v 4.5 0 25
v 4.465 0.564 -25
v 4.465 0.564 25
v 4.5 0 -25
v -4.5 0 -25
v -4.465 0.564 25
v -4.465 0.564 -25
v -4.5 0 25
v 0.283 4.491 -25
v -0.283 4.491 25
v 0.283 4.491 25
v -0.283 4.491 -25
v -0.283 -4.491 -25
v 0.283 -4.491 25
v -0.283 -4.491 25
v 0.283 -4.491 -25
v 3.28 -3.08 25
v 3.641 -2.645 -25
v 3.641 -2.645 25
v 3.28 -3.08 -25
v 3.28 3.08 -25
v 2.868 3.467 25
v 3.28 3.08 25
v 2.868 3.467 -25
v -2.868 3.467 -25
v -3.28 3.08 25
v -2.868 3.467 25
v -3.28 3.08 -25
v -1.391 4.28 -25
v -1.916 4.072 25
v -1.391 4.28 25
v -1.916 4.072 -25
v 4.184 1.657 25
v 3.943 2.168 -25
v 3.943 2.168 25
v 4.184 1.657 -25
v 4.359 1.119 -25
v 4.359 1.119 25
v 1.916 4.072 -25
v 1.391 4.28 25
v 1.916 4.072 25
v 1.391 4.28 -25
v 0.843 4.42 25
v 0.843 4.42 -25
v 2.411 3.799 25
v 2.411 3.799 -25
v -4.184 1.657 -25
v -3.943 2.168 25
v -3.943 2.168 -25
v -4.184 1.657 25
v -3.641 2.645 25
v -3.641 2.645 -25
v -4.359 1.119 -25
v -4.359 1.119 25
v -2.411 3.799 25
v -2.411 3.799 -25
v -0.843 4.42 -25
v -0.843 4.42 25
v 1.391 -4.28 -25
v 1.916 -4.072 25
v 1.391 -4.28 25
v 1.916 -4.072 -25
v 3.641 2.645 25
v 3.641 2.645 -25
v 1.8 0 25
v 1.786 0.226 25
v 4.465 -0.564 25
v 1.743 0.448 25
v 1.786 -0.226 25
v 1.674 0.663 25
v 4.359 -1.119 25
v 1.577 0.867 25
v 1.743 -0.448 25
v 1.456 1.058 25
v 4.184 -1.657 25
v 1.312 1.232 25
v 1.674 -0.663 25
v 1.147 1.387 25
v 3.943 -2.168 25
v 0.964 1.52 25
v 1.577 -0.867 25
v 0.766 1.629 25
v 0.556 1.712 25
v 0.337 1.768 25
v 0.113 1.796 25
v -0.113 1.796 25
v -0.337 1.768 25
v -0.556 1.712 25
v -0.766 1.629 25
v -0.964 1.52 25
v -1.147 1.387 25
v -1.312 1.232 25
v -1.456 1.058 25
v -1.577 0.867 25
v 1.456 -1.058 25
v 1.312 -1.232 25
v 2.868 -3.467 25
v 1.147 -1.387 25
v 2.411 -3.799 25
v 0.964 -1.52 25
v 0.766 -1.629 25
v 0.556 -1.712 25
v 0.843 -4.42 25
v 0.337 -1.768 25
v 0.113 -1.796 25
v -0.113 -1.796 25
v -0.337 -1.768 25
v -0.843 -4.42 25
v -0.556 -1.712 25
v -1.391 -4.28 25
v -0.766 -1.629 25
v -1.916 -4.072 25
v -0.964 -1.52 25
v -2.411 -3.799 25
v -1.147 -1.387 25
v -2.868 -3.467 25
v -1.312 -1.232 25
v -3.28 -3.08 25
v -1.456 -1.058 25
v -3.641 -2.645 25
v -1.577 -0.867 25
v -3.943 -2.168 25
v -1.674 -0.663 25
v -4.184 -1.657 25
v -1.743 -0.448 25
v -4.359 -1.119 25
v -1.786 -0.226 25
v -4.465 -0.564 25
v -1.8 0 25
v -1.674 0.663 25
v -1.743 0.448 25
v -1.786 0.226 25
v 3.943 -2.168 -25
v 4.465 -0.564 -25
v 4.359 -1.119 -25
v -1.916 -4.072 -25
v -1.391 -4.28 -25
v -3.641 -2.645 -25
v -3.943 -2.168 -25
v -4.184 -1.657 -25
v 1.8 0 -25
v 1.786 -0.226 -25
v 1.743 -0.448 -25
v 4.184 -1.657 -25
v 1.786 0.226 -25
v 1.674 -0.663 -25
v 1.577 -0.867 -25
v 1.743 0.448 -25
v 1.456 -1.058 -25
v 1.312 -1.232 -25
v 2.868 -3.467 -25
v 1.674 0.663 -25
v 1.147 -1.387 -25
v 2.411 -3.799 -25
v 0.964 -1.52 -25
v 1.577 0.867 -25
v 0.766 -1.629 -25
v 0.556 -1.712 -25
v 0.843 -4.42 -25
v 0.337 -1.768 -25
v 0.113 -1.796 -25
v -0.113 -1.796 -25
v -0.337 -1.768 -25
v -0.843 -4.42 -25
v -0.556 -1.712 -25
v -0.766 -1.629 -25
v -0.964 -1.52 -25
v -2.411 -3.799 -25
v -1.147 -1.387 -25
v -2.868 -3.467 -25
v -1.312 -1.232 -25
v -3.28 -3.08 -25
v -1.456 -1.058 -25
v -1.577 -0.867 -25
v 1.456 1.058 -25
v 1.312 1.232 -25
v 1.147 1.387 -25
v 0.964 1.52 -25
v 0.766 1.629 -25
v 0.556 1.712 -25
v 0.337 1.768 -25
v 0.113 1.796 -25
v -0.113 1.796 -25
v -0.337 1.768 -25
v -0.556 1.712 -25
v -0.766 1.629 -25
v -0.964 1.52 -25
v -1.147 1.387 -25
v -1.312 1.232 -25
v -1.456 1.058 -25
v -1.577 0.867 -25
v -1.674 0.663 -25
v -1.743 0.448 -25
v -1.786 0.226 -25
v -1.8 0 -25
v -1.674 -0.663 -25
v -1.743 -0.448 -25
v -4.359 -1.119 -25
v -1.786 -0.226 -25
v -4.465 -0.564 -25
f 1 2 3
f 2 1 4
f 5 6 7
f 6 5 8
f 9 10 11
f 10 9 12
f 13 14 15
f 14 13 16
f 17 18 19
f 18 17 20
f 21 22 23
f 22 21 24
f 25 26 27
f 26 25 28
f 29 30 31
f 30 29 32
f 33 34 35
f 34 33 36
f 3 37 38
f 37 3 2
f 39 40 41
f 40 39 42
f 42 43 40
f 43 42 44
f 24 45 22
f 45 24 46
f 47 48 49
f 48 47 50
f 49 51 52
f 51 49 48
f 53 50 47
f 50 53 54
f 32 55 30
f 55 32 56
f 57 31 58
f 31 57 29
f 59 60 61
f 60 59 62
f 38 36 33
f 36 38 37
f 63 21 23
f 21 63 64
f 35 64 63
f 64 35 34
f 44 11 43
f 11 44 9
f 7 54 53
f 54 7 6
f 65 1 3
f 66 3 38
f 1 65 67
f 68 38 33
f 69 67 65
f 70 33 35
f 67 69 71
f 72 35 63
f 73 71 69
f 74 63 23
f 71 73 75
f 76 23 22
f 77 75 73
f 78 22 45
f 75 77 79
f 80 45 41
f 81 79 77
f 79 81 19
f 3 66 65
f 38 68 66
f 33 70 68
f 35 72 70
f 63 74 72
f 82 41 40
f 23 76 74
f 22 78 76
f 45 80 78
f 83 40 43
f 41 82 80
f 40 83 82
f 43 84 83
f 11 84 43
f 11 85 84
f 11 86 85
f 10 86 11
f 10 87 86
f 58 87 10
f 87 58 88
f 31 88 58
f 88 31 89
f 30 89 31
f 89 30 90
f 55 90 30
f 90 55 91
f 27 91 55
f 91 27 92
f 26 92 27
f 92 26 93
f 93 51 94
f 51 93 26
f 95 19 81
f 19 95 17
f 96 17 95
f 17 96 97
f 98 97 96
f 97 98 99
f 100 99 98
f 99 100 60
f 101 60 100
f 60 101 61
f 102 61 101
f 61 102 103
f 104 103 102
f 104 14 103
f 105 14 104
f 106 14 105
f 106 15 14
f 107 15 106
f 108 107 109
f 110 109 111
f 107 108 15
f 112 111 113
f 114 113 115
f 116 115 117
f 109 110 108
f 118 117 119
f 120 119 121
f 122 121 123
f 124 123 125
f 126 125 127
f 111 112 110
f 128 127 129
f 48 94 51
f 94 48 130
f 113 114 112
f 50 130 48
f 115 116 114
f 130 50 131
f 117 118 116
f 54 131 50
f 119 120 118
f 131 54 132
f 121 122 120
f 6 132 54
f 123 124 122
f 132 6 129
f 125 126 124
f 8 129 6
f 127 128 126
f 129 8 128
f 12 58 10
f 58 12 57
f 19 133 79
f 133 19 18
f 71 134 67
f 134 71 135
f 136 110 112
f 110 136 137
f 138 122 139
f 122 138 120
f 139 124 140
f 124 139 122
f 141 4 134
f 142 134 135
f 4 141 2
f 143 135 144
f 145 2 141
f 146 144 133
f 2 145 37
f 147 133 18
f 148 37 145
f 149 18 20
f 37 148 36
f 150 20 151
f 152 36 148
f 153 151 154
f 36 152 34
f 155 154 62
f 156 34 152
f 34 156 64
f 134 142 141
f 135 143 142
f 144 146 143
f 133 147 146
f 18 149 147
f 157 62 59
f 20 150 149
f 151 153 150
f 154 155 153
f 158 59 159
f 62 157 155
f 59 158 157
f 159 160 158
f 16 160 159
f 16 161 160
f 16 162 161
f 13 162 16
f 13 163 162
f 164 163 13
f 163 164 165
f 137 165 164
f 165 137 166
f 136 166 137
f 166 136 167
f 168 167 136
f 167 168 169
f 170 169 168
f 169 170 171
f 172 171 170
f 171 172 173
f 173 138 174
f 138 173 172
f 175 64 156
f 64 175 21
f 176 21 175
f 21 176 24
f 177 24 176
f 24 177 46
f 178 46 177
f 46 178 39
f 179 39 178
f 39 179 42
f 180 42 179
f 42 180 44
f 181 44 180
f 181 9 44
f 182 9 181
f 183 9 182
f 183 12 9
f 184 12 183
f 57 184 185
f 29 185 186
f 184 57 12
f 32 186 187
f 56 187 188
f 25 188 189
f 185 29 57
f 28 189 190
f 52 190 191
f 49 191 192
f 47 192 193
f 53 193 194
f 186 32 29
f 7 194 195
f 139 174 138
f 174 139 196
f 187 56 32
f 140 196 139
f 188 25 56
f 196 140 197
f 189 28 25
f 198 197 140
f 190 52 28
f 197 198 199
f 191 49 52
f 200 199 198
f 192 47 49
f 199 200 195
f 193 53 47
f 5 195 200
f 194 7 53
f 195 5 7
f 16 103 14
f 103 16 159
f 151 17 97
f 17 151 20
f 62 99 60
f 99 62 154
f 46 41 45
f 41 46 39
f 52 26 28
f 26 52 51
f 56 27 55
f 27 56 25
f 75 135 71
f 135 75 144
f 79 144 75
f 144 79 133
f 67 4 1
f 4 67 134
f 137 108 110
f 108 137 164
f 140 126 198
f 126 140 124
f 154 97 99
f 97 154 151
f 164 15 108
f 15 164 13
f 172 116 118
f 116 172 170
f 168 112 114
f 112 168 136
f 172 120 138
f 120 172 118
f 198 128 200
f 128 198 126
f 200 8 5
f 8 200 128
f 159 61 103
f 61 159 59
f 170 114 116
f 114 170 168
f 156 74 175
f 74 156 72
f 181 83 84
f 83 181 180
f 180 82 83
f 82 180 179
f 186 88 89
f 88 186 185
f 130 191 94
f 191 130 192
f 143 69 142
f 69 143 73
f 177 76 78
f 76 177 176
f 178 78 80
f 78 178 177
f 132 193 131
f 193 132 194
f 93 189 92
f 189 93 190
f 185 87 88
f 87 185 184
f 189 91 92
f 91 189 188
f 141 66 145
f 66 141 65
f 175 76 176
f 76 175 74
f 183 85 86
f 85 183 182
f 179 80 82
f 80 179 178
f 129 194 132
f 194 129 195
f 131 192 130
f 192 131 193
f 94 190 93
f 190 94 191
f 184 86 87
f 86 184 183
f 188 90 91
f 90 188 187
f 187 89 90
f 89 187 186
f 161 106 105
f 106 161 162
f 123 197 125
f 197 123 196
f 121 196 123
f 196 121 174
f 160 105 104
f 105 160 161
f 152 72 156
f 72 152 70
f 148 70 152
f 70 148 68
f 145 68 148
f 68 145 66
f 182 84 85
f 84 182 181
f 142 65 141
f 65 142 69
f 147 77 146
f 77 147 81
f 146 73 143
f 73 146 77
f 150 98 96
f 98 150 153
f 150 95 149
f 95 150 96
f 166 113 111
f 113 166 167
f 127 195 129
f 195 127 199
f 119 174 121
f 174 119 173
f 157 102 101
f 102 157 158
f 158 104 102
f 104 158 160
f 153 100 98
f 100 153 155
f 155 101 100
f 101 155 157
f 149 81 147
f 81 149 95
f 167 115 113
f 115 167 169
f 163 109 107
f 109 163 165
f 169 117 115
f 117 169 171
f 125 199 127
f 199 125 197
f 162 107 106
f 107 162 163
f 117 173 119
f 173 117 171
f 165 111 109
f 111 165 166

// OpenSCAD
$fn = 50;


difference() {
	union() {
		translate(v = [0, 0, -25.0000000000]) {
			cylinder(h = 50, r = 4.5000000000);
		}
	}
	union() {
		translate(v = [0, 0, -100.0000000000]) {
			cylinder(h = 200, r = 1.8000000000);
		}
	}
}
